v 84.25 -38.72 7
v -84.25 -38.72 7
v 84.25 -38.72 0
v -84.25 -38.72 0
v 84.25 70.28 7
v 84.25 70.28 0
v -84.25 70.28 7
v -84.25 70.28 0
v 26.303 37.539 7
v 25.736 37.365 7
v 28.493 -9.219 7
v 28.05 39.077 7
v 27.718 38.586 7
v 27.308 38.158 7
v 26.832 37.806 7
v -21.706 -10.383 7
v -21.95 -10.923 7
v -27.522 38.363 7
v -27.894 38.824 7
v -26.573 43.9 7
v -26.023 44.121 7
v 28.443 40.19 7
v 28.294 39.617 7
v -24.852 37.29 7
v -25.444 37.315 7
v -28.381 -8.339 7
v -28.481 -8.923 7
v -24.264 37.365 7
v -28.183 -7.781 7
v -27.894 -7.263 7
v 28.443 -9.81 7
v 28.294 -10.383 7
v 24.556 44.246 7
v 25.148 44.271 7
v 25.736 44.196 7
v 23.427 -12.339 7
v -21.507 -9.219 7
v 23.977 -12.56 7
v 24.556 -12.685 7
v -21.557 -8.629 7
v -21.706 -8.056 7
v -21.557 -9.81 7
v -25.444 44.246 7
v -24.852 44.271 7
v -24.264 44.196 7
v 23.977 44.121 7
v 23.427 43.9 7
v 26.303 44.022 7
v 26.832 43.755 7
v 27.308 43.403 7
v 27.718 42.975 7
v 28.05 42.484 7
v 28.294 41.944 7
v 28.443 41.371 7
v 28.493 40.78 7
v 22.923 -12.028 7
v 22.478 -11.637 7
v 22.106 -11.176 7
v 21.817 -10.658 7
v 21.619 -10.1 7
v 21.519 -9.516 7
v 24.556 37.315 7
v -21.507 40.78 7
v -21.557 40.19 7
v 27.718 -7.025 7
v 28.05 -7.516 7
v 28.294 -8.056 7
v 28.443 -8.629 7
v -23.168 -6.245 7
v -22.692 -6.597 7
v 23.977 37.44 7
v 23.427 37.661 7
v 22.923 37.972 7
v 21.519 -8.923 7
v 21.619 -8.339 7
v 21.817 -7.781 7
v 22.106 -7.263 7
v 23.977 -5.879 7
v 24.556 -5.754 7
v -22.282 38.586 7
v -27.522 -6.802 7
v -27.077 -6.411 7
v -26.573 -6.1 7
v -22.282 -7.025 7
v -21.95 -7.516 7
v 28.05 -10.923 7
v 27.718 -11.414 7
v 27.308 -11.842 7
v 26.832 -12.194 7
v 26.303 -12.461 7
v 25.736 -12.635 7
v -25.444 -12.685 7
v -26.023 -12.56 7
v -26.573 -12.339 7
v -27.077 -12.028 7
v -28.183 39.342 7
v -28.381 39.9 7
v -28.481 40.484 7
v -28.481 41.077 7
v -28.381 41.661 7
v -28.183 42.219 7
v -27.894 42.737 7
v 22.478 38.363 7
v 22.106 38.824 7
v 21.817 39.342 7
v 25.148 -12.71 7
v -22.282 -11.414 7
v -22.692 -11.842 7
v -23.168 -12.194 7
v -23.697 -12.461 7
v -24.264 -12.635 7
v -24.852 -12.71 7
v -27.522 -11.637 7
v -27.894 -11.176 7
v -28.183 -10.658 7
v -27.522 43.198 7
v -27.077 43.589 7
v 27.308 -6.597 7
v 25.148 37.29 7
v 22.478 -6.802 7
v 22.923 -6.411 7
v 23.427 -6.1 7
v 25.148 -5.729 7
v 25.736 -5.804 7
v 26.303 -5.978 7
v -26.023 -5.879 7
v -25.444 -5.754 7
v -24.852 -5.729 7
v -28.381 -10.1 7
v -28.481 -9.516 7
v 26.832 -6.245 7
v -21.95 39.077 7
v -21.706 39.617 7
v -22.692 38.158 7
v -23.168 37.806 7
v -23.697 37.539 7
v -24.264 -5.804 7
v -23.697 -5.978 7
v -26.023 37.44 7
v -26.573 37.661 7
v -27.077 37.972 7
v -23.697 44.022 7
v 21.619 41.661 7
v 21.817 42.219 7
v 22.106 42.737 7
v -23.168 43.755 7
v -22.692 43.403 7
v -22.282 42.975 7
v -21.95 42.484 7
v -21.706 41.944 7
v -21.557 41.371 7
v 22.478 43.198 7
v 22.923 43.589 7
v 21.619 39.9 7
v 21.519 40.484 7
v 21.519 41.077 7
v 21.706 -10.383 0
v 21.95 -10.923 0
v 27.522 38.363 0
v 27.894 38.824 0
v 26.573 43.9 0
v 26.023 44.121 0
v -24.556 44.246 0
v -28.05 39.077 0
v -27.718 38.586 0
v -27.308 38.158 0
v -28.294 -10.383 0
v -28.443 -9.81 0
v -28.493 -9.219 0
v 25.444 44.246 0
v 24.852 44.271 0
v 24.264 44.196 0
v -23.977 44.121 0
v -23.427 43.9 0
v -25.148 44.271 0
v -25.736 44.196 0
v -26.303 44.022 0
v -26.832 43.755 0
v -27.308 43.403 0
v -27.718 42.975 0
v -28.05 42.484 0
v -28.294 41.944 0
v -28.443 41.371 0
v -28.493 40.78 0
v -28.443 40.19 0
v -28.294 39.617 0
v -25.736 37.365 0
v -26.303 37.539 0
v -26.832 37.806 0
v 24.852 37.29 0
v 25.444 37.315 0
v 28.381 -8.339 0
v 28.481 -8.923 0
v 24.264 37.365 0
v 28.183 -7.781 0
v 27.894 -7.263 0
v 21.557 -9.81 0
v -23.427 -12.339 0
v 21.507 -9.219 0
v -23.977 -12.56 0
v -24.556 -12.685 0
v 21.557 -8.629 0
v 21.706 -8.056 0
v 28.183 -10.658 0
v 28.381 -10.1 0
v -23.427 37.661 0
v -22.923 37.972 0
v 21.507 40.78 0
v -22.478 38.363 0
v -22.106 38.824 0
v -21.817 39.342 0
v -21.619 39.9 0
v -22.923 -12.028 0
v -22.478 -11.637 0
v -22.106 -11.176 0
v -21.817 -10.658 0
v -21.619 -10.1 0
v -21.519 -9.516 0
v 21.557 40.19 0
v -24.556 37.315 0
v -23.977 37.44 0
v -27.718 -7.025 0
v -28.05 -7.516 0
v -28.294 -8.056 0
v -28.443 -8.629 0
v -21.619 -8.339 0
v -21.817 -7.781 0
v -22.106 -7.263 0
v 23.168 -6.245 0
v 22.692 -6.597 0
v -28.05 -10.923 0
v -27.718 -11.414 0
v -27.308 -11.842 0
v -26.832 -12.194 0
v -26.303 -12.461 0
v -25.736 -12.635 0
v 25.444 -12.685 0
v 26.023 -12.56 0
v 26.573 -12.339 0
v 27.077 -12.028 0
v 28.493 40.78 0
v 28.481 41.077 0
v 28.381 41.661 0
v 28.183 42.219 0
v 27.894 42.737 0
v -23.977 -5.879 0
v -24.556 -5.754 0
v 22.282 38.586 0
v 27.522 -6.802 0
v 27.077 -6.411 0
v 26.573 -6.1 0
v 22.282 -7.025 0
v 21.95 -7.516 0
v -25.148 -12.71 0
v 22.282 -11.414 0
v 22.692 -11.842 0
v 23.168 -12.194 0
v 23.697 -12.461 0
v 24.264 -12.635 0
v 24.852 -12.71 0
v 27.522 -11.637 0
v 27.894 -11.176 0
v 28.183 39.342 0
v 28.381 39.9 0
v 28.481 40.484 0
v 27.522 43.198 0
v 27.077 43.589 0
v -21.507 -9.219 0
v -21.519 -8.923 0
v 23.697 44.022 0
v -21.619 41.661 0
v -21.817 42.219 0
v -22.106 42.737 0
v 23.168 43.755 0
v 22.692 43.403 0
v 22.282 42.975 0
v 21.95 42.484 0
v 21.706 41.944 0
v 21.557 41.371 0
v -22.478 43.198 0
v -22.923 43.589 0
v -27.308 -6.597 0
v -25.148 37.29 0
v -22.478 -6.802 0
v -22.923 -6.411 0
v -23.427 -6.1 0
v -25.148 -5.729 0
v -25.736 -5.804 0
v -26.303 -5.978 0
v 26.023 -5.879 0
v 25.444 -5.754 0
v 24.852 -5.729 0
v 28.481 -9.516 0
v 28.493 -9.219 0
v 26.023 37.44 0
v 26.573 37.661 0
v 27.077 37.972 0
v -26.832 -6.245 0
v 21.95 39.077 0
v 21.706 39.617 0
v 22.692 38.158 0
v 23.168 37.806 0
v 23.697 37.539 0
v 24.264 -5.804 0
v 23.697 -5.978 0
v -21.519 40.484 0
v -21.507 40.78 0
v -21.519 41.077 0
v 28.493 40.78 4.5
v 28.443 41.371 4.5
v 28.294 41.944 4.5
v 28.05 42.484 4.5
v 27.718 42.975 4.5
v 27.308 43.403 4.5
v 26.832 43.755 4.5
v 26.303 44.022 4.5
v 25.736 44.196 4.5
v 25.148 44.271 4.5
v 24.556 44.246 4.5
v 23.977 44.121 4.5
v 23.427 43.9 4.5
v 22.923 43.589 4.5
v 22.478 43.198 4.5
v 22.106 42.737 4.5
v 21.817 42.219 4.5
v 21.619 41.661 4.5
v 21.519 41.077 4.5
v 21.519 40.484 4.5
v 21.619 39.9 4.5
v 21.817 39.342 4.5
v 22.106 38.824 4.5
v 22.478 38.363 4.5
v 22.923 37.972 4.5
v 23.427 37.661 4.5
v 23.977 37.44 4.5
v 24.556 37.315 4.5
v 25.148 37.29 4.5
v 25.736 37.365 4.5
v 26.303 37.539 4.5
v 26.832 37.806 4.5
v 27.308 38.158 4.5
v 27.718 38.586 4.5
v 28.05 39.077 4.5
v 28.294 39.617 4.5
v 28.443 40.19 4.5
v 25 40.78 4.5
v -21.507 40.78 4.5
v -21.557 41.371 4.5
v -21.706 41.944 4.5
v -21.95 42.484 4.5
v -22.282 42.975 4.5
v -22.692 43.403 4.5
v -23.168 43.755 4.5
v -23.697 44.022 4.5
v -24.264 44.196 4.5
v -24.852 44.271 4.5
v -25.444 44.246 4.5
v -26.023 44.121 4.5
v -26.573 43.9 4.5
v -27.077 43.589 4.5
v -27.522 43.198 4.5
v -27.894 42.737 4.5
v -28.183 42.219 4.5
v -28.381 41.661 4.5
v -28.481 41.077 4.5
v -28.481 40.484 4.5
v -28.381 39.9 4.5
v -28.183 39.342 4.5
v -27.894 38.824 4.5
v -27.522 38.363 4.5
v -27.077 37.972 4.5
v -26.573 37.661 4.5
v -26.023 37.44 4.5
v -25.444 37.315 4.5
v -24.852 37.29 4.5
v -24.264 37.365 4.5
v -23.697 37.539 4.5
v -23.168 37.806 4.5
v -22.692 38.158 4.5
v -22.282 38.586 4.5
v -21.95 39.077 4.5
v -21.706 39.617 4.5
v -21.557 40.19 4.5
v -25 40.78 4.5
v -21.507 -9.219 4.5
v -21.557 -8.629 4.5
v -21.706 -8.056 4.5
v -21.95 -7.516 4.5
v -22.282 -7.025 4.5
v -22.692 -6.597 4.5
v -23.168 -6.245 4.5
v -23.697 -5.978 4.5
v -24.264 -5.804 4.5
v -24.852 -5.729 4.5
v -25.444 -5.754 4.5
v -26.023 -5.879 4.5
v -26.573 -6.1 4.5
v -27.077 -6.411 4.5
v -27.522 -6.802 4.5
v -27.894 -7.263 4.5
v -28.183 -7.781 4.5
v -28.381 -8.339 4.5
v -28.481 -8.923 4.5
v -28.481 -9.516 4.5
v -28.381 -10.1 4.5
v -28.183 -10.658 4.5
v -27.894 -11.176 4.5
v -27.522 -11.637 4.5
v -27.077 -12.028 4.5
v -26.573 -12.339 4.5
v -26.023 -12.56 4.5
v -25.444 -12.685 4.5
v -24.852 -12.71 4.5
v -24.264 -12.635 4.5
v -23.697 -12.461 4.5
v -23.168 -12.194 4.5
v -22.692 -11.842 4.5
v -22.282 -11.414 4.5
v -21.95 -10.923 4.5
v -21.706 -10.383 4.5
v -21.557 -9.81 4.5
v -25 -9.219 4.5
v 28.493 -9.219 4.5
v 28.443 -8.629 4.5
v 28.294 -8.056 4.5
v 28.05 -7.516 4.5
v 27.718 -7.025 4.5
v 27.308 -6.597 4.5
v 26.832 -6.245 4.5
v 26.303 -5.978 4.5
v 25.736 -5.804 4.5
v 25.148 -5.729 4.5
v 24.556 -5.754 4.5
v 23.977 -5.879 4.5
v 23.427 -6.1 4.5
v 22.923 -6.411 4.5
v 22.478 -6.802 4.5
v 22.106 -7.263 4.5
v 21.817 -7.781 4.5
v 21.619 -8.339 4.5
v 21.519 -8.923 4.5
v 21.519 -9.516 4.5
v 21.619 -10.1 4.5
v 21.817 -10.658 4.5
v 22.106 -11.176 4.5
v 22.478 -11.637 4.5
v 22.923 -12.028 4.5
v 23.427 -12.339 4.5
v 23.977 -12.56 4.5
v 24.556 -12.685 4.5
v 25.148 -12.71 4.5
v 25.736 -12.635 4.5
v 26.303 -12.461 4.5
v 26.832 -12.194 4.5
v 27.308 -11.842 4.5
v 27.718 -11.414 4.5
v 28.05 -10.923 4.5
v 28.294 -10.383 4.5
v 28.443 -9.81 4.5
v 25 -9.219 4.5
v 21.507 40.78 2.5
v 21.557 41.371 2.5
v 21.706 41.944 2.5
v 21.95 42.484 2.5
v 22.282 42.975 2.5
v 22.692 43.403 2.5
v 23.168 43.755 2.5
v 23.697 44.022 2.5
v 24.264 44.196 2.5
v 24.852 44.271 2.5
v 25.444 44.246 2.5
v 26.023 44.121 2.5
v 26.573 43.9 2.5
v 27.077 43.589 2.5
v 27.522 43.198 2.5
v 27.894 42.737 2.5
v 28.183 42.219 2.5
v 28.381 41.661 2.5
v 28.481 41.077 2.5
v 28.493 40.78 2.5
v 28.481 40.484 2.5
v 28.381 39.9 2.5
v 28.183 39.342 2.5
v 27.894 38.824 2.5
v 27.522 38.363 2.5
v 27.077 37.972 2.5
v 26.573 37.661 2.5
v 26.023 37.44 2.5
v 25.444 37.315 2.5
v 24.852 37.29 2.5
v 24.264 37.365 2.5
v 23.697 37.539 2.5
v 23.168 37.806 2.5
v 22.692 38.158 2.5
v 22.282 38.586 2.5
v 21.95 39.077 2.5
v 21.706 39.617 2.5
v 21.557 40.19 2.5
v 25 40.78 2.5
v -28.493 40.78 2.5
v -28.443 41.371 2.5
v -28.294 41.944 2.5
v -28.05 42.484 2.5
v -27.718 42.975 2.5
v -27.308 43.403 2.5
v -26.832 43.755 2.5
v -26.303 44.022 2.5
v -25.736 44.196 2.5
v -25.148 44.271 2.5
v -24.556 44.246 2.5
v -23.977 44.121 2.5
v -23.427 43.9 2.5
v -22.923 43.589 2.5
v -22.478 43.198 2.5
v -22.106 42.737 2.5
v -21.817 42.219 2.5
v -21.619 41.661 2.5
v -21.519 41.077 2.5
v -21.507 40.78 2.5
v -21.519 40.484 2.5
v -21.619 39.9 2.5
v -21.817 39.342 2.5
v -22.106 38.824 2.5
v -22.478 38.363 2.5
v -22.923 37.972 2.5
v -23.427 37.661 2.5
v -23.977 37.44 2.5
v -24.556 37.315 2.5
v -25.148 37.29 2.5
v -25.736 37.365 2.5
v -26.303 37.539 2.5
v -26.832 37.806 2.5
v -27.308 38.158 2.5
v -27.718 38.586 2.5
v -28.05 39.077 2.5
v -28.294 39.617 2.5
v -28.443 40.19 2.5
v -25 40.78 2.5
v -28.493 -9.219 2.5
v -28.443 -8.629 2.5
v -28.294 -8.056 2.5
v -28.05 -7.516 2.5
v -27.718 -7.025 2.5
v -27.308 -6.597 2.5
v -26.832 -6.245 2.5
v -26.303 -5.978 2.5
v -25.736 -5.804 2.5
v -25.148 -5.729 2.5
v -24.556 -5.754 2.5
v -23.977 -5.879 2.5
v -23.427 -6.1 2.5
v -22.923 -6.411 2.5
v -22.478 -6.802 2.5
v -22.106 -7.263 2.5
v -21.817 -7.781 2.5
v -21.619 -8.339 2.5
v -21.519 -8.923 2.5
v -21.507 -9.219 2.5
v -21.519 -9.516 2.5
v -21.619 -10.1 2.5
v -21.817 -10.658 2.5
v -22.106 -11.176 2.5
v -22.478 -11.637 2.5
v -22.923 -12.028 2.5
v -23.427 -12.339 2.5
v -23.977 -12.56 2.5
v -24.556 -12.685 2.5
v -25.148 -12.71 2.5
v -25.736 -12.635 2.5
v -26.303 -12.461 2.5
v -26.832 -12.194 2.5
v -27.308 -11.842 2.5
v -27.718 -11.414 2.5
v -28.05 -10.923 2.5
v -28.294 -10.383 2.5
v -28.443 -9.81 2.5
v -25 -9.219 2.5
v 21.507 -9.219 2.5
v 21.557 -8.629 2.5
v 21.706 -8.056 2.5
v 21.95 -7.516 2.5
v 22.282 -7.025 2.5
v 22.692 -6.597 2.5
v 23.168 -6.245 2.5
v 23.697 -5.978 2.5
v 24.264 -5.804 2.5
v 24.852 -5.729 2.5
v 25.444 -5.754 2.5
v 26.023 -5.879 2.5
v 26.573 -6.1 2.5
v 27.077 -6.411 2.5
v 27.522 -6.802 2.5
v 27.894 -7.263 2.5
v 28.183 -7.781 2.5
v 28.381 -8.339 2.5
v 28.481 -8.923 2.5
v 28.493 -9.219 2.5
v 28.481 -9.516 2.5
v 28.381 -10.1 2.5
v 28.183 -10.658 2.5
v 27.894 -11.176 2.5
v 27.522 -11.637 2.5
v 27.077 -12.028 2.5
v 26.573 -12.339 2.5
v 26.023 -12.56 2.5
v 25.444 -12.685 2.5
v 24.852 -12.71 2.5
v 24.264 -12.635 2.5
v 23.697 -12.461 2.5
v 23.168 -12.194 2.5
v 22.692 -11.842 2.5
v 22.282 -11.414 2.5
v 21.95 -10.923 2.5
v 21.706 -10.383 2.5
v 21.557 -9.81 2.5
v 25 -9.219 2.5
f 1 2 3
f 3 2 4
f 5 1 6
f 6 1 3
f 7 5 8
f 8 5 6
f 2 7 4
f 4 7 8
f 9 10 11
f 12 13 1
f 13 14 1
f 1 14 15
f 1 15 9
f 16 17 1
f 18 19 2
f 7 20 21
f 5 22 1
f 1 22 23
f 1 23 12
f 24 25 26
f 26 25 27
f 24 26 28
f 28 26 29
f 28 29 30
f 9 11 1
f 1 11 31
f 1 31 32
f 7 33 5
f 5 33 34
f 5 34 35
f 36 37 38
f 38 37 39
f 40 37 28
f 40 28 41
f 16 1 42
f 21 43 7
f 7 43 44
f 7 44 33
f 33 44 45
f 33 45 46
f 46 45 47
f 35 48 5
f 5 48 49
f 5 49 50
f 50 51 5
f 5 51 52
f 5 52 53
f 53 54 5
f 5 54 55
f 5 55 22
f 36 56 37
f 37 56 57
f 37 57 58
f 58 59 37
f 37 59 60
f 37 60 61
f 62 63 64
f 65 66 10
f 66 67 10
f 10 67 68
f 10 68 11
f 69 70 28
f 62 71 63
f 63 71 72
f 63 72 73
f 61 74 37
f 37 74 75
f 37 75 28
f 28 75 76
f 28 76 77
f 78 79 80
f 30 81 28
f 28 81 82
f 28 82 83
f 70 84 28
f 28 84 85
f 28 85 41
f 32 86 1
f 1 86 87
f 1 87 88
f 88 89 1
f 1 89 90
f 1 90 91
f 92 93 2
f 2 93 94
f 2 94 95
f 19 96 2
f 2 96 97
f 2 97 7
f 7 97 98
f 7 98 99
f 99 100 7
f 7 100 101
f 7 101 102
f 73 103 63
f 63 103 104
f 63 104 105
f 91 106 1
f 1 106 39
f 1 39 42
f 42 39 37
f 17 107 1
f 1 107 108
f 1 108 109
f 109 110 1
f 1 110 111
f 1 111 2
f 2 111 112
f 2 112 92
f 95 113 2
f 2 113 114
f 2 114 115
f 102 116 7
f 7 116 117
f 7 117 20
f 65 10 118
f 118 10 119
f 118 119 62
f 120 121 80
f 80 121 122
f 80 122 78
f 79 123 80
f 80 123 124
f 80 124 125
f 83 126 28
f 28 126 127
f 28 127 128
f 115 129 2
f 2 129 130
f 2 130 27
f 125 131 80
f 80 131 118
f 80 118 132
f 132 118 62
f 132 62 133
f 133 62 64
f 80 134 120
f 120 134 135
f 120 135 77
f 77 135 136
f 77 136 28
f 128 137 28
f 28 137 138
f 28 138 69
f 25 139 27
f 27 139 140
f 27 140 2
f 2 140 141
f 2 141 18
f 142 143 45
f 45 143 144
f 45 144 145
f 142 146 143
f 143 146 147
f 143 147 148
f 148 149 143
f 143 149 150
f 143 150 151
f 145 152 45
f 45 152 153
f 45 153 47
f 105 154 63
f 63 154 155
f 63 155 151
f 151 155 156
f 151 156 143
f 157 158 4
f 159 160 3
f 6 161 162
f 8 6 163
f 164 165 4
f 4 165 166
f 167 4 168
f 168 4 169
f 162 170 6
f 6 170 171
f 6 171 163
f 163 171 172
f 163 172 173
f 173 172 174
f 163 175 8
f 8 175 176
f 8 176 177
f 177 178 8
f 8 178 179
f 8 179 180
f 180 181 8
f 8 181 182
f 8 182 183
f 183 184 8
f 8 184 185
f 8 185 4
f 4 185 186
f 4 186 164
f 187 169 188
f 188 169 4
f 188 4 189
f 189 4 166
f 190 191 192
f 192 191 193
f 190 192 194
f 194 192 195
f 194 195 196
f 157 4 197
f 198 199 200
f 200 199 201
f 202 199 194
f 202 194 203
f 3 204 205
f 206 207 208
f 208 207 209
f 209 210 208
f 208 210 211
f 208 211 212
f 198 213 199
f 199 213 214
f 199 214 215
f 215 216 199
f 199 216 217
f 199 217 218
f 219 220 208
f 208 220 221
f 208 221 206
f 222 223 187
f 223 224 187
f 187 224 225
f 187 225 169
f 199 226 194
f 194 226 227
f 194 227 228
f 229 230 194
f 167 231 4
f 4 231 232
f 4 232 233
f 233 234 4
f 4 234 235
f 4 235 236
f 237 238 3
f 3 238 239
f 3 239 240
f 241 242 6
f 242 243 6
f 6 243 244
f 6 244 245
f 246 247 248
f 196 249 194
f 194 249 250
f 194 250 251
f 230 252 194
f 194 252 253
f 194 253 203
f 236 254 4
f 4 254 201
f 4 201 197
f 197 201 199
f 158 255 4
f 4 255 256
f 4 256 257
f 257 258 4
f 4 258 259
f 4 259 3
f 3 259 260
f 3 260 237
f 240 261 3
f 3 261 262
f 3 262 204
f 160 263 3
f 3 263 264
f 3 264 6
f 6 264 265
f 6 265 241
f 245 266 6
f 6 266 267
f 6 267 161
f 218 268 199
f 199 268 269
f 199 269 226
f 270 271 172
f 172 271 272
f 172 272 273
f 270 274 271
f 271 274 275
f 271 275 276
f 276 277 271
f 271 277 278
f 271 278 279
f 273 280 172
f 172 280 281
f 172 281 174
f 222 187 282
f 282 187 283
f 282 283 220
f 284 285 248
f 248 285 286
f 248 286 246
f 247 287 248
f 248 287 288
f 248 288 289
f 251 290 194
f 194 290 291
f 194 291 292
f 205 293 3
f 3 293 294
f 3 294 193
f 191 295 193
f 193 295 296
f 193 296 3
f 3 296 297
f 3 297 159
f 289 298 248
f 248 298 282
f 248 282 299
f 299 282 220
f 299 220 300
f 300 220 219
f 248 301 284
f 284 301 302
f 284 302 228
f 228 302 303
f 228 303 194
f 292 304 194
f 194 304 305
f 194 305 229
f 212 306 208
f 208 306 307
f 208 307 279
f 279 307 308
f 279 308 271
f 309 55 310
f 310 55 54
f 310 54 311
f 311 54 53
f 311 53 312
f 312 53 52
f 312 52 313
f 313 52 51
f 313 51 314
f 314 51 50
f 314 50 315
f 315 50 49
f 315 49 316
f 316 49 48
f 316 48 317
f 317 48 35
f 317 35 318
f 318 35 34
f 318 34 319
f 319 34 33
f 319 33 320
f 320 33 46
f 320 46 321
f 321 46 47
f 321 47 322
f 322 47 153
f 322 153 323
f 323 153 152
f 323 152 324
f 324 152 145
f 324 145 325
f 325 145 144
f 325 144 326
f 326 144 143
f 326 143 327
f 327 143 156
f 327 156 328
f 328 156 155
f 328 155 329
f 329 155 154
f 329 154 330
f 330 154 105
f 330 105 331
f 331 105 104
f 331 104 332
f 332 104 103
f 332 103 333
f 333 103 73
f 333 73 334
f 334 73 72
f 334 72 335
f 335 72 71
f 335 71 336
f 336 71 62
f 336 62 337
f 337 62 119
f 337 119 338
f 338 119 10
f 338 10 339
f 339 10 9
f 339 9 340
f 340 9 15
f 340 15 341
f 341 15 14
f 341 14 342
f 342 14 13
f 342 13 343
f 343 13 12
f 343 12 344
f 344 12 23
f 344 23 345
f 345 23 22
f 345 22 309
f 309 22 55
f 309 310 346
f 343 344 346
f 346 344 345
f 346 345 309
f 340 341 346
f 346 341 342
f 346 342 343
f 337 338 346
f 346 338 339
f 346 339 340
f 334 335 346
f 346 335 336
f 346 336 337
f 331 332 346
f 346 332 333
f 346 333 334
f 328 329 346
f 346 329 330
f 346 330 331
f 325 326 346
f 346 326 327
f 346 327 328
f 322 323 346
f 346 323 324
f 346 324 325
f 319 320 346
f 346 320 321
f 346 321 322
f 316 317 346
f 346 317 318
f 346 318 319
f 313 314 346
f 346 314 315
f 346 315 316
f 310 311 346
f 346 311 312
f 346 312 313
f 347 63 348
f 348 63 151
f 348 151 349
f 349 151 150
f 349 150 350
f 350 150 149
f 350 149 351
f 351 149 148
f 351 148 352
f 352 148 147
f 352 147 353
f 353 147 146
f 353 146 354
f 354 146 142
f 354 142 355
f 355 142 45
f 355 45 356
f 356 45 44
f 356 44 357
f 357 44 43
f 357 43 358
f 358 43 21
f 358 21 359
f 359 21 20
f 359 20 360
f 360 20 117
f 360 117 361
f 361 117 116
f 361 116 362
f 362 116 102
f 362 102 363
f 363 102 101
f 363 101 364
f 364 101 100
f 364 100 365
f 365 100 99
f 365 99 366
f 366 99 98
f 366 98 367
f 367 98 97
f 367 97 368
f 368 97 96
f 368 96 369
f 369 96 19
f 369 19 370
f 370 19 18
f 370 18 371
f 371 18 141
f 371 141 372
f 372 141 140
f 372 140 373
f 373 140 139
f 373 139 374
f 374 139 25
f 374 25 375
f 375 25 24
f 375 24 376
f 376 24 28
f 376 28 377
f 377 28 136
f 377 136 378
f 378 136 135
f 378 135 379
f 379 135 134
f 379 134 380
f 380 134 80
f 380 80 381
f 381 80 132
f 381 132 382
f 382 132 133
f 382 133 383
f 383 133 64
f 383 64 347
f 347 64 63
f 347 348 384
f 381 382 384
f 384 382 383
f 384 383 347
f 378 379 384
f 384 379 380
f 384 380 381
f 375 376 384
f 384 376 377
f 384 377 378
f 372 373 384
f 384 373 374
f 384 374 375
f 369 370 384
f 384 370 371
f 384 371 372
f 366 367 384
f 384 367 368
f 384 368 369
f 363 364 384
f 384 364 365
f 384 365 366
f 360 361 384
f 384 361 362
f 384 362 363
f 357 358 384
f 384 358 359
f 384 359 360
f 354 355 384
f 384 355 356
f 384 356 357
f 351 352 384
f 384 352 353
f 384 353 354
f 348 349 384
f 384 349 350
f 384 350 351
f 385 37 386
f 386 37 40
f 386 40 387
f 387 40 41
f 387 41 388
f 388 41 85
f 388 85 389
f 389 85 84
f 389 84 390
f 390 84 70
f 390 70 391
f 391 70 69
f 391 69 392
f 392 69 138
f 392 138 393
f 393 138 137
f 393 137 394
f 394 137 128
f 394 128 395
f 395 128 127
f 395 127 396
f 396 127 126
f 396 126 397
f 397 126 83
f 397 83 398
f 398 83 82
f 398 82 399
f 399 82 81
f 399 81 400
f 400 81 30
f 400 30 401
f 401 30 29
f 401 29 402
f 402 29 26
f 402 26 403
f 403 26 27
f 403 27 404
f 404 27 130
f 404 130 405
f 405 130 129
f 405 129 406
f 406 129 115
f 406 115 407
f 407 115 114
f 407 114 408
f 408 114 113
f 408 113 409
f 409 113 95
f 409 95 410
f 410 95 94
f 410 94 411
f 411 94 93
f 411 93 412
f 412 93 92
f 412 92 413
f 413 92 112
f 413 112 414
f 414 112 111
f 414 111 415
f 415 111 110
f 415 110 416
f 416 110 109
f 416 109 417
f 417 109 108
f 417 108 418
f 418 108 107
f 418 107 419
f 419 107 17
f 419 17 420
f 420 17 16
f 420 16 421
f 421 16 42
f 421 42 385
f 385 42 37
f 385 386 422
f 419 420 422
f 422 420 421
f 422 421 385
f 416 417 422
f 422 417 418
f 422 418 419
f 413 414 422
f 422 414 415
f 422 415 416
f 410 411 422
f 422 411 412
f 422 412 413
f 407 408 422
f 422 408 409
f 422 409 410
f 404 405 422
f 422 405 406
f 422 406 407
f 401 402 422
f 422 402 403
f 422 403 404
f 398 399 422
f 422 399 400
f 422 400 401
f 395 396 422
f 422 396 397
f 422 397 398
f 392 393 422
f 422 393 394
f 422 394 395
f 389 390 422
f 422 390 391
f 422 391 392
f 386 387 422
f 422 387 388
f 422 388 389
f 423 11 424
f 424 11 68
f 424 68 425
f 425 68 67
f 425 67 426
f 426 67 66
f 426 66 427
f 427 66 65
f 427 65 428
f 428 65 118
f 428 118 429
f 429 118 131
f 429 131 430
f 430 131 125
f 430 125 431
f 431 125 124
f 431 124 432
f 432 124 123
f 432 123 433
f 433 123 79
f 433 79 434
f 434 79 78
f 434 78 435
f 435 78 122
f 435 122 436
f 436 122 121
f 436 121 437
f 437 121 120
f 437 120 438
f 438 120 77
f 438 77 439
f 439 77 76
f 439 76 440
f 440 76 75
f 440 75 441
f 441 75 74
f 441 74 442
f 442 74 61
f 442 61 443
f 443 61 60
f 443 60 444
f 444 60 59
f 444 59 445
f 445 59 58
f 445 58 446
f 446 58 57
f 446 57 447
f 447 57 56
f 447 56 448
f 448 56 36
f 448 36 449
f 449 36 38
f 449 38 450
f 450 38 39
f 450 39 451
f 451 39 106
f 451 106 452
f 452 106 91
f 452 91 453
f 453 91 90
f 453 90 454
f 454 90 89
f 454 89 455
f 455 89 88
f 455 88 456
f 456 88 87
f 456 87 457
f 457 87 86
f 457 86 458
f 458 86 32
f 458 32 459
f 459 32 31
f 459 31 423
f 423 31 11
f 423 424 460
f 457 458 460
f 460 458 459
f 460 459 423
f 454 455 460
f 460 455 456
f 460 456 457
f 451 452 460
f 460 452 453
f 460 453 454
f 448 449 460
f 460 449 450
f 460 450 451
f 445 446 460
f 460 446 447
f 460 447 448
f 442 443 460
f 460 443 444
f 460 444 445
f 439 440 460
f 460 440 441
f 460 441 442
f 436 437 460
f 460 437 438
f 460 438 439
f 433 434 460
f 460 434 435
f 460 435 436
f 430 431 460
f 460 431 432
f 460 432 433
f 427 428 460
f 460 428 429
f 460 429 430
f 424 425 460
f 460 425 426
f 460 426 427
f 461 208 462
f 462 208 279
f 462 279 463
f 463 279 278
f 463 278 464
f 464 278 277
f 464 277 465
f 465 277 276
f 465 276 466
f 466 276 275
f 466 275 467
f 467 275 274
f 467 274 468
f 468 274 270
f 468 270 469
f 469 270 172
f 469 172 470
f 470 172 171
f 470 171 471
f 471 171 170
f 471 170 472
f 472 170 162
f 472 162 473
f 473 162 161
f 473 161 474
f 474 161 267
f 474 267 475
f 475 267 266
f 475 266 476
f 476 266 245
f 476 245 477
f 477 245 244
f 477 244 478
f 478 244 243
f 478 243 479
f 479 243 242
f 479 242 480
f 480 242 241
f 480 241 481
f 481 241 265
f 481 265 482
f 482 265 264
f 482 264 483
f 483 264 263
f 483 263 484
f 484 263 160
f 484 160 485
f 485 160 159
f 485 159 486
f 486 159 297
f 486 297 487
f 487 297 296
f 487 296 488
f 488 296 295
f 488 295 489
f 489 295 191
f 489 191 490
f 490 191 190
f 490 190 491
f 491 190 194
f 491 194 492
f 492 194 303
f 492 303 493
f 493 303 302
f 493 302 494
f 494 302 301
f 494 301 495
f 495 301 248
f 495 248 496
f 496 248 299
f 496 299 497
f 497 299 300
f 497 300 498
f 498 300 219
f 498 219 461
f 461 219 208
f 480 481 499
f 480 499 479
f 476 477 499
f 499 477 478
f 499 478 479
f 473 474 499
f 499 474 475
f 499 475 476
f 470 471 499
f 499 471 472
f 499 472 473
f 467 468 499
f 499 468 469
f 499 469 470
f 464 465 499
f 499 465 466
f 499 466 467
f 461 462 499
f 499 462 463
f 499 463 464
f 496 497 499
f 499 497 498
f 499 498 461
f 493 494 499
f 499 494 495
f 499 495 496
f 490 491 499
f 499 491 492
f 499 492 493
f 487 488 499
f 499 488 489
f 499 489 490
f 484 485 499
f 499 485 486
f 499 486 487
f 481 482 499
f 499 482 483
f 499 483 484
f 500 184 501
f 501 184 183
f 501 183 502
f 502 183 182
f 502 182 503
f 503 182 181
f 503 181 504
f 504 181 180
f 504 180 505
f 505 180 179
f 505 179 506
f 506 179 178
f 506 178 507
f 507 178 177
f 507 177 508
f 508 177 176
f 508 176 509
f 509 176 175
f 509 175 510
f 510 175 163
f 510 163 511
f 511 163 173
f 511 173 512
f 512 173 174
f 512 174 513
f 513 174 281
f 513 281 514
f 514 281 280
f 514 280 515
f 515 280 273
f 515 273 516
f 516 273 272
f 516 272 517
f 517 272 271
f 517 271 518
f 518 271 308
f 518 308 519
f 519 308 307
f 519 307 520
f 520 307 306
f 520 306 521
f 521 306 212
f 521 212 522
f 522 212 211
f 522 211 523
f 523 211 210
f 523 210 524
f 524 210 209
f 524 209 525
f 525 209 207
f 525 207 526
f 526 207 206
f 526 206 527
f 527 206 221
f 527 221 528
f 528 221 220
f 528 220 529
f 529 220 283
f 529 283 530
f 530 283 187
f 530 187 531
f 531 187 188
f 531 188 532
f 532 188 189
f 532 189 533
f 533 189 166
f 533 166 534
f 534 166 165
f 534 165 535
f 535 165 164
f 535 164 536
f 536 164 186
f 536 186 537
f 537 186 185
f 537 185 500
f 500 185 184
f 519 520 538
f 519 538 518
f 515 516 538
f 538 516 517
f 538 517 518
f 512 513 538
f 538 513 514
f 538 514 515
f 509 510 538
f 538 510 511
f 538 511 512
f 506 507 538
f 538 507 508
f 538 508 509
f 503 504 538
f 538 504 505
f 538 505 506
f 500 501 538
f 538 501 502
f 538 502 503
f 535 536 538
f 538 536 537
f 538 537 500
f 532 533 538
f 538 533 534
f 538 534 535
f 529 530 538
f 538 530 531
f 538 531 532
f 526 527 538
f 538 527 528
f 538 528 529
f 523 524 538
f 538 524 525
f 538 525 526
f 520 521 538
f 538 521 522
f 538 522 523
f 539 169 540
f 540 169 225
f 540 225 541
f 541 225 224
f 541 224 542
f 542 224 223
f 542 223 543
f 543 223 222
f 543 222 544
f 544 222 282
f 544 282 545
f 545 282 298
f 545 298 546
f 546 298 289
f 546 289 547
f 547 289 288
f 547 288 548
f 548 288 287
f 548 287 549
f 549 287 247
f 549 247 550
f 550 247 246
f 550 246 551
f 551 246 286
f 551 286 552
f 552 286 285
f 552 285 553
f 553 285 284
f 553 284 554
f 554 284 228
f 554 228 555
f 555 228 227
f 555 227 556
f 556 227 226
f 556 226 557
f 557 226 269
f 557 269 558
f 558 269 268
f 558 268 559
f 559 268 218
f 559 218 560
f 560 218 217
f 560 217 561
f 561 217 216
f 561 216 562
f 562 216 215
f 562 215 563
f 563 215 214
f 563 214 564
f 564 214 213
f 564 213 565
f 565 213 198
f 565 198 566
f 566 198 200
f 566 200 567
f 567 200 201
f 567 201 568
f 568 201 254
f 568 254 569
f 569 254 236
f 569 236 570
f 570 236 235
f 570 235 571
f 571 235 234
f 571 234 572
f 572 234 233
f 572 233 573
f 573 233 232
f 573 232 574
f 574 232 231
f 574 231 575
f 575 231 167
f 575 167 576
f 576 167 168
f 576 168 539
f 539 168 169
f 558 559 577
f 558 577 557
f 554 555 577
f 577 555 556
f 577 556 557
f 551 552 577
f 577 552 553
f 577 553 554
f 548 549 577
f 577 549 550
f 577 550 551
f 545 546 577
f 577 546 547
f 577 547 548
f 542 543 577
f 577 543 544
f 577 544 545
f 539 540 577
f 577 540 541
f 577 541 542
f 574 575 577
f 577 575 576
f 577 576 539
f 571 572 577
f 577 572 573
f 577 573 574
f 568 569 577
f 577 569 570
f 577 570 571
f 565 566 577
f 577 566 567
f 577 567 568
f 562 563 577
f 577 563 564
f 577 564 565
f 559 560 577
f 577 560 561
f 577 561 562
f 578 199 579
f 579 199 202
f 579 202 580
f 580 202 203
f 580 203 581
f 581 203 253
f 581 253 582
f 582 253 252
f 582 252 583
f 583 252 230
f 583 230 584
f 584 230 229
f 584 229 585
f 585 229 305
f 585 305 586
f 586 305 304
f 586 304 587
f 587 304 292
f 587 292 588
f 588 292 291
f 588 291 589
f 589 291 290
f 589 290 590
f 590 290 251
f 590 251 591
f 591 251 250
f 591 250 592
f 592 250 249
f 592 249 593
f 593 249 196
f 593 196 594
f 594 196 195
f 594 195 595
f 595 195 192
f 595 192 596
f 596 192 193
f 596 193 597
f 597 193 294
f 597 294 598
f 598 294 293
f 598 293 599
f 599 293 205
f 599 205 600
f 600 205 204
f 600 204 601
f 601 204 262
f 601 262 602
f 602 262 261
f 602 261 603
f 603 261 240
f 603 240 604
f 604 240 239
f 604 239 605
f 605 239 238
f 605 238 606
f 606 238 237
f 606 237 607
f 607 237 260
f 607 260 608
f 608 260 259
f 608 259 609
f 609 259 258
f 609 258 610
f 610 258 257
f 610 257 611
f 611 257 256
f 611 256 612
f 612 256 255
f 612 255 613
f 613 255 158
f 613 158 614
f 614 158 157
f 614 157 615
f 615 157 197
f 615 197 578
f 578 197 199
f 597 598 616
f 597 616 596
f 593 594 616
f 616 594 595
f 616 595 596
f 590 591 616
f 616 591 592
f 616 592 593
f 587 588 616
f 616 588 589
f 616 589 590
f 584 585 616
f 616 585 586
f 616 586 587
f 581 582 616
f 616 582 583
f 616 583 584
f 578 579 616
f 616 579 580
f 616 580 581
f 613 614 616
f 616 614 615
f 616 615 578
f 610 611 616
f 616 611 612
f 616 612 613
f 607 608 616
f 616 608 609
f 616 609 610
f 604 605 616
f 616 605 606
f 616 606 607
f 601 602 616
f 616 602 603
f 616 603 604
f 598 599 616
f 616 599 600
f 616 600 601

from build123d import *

# Parameters (mm, degrees)
SKETCH1_W           = 168.5
SKETCH1_H           = 109
BOSS_EXTRUDE1_DEPTH = 7
SKETCH2_R           = 3.493429644
CUT_EXTRUDE1_DEPTH  = 2.5


with BuildPart() as part:
    # Sketch1 → Boss-Extrude1 (new body)
    with BuildSketch(Plane(origin=(0, 0, 0), x_dir=(-1, 0, 0), z_dir=(0, 0, 1))):
        with Locations((0, -15.7805)):
            Rectangle(SKETCH1_W, SKETCH1_H)
    extrude(amount=BOSS_EXTRUDE1_DEPTH)

    # Sketch2 → Cut-Extrude1 (cut)
    with BuildSketch(Plane.XY.offset(7)):
        with Locations((25, 40.7805)):
            Circle(SKETCH2_R)
        with Locations((-25, 40.7805)):
            Circle(SKETCH2_R)
        with Locations((-25, -9.2195)):
            Circle(SKETCH2_R)
        with Locations((25, -9.2195)):
            Circle(SKETCH2_R)
    cut_extrude1 = extrude(amount=-CUT_EXTRUDE1_DEPTH, mode=Mode.SUBTRACT)

    # Mirror1: Cut-Extrude1 across plane
    add(cut_extrude1.mirror(Plane.XY.offset(3.5)), mode=Mode.SUBTRACT)


solid = part.part
